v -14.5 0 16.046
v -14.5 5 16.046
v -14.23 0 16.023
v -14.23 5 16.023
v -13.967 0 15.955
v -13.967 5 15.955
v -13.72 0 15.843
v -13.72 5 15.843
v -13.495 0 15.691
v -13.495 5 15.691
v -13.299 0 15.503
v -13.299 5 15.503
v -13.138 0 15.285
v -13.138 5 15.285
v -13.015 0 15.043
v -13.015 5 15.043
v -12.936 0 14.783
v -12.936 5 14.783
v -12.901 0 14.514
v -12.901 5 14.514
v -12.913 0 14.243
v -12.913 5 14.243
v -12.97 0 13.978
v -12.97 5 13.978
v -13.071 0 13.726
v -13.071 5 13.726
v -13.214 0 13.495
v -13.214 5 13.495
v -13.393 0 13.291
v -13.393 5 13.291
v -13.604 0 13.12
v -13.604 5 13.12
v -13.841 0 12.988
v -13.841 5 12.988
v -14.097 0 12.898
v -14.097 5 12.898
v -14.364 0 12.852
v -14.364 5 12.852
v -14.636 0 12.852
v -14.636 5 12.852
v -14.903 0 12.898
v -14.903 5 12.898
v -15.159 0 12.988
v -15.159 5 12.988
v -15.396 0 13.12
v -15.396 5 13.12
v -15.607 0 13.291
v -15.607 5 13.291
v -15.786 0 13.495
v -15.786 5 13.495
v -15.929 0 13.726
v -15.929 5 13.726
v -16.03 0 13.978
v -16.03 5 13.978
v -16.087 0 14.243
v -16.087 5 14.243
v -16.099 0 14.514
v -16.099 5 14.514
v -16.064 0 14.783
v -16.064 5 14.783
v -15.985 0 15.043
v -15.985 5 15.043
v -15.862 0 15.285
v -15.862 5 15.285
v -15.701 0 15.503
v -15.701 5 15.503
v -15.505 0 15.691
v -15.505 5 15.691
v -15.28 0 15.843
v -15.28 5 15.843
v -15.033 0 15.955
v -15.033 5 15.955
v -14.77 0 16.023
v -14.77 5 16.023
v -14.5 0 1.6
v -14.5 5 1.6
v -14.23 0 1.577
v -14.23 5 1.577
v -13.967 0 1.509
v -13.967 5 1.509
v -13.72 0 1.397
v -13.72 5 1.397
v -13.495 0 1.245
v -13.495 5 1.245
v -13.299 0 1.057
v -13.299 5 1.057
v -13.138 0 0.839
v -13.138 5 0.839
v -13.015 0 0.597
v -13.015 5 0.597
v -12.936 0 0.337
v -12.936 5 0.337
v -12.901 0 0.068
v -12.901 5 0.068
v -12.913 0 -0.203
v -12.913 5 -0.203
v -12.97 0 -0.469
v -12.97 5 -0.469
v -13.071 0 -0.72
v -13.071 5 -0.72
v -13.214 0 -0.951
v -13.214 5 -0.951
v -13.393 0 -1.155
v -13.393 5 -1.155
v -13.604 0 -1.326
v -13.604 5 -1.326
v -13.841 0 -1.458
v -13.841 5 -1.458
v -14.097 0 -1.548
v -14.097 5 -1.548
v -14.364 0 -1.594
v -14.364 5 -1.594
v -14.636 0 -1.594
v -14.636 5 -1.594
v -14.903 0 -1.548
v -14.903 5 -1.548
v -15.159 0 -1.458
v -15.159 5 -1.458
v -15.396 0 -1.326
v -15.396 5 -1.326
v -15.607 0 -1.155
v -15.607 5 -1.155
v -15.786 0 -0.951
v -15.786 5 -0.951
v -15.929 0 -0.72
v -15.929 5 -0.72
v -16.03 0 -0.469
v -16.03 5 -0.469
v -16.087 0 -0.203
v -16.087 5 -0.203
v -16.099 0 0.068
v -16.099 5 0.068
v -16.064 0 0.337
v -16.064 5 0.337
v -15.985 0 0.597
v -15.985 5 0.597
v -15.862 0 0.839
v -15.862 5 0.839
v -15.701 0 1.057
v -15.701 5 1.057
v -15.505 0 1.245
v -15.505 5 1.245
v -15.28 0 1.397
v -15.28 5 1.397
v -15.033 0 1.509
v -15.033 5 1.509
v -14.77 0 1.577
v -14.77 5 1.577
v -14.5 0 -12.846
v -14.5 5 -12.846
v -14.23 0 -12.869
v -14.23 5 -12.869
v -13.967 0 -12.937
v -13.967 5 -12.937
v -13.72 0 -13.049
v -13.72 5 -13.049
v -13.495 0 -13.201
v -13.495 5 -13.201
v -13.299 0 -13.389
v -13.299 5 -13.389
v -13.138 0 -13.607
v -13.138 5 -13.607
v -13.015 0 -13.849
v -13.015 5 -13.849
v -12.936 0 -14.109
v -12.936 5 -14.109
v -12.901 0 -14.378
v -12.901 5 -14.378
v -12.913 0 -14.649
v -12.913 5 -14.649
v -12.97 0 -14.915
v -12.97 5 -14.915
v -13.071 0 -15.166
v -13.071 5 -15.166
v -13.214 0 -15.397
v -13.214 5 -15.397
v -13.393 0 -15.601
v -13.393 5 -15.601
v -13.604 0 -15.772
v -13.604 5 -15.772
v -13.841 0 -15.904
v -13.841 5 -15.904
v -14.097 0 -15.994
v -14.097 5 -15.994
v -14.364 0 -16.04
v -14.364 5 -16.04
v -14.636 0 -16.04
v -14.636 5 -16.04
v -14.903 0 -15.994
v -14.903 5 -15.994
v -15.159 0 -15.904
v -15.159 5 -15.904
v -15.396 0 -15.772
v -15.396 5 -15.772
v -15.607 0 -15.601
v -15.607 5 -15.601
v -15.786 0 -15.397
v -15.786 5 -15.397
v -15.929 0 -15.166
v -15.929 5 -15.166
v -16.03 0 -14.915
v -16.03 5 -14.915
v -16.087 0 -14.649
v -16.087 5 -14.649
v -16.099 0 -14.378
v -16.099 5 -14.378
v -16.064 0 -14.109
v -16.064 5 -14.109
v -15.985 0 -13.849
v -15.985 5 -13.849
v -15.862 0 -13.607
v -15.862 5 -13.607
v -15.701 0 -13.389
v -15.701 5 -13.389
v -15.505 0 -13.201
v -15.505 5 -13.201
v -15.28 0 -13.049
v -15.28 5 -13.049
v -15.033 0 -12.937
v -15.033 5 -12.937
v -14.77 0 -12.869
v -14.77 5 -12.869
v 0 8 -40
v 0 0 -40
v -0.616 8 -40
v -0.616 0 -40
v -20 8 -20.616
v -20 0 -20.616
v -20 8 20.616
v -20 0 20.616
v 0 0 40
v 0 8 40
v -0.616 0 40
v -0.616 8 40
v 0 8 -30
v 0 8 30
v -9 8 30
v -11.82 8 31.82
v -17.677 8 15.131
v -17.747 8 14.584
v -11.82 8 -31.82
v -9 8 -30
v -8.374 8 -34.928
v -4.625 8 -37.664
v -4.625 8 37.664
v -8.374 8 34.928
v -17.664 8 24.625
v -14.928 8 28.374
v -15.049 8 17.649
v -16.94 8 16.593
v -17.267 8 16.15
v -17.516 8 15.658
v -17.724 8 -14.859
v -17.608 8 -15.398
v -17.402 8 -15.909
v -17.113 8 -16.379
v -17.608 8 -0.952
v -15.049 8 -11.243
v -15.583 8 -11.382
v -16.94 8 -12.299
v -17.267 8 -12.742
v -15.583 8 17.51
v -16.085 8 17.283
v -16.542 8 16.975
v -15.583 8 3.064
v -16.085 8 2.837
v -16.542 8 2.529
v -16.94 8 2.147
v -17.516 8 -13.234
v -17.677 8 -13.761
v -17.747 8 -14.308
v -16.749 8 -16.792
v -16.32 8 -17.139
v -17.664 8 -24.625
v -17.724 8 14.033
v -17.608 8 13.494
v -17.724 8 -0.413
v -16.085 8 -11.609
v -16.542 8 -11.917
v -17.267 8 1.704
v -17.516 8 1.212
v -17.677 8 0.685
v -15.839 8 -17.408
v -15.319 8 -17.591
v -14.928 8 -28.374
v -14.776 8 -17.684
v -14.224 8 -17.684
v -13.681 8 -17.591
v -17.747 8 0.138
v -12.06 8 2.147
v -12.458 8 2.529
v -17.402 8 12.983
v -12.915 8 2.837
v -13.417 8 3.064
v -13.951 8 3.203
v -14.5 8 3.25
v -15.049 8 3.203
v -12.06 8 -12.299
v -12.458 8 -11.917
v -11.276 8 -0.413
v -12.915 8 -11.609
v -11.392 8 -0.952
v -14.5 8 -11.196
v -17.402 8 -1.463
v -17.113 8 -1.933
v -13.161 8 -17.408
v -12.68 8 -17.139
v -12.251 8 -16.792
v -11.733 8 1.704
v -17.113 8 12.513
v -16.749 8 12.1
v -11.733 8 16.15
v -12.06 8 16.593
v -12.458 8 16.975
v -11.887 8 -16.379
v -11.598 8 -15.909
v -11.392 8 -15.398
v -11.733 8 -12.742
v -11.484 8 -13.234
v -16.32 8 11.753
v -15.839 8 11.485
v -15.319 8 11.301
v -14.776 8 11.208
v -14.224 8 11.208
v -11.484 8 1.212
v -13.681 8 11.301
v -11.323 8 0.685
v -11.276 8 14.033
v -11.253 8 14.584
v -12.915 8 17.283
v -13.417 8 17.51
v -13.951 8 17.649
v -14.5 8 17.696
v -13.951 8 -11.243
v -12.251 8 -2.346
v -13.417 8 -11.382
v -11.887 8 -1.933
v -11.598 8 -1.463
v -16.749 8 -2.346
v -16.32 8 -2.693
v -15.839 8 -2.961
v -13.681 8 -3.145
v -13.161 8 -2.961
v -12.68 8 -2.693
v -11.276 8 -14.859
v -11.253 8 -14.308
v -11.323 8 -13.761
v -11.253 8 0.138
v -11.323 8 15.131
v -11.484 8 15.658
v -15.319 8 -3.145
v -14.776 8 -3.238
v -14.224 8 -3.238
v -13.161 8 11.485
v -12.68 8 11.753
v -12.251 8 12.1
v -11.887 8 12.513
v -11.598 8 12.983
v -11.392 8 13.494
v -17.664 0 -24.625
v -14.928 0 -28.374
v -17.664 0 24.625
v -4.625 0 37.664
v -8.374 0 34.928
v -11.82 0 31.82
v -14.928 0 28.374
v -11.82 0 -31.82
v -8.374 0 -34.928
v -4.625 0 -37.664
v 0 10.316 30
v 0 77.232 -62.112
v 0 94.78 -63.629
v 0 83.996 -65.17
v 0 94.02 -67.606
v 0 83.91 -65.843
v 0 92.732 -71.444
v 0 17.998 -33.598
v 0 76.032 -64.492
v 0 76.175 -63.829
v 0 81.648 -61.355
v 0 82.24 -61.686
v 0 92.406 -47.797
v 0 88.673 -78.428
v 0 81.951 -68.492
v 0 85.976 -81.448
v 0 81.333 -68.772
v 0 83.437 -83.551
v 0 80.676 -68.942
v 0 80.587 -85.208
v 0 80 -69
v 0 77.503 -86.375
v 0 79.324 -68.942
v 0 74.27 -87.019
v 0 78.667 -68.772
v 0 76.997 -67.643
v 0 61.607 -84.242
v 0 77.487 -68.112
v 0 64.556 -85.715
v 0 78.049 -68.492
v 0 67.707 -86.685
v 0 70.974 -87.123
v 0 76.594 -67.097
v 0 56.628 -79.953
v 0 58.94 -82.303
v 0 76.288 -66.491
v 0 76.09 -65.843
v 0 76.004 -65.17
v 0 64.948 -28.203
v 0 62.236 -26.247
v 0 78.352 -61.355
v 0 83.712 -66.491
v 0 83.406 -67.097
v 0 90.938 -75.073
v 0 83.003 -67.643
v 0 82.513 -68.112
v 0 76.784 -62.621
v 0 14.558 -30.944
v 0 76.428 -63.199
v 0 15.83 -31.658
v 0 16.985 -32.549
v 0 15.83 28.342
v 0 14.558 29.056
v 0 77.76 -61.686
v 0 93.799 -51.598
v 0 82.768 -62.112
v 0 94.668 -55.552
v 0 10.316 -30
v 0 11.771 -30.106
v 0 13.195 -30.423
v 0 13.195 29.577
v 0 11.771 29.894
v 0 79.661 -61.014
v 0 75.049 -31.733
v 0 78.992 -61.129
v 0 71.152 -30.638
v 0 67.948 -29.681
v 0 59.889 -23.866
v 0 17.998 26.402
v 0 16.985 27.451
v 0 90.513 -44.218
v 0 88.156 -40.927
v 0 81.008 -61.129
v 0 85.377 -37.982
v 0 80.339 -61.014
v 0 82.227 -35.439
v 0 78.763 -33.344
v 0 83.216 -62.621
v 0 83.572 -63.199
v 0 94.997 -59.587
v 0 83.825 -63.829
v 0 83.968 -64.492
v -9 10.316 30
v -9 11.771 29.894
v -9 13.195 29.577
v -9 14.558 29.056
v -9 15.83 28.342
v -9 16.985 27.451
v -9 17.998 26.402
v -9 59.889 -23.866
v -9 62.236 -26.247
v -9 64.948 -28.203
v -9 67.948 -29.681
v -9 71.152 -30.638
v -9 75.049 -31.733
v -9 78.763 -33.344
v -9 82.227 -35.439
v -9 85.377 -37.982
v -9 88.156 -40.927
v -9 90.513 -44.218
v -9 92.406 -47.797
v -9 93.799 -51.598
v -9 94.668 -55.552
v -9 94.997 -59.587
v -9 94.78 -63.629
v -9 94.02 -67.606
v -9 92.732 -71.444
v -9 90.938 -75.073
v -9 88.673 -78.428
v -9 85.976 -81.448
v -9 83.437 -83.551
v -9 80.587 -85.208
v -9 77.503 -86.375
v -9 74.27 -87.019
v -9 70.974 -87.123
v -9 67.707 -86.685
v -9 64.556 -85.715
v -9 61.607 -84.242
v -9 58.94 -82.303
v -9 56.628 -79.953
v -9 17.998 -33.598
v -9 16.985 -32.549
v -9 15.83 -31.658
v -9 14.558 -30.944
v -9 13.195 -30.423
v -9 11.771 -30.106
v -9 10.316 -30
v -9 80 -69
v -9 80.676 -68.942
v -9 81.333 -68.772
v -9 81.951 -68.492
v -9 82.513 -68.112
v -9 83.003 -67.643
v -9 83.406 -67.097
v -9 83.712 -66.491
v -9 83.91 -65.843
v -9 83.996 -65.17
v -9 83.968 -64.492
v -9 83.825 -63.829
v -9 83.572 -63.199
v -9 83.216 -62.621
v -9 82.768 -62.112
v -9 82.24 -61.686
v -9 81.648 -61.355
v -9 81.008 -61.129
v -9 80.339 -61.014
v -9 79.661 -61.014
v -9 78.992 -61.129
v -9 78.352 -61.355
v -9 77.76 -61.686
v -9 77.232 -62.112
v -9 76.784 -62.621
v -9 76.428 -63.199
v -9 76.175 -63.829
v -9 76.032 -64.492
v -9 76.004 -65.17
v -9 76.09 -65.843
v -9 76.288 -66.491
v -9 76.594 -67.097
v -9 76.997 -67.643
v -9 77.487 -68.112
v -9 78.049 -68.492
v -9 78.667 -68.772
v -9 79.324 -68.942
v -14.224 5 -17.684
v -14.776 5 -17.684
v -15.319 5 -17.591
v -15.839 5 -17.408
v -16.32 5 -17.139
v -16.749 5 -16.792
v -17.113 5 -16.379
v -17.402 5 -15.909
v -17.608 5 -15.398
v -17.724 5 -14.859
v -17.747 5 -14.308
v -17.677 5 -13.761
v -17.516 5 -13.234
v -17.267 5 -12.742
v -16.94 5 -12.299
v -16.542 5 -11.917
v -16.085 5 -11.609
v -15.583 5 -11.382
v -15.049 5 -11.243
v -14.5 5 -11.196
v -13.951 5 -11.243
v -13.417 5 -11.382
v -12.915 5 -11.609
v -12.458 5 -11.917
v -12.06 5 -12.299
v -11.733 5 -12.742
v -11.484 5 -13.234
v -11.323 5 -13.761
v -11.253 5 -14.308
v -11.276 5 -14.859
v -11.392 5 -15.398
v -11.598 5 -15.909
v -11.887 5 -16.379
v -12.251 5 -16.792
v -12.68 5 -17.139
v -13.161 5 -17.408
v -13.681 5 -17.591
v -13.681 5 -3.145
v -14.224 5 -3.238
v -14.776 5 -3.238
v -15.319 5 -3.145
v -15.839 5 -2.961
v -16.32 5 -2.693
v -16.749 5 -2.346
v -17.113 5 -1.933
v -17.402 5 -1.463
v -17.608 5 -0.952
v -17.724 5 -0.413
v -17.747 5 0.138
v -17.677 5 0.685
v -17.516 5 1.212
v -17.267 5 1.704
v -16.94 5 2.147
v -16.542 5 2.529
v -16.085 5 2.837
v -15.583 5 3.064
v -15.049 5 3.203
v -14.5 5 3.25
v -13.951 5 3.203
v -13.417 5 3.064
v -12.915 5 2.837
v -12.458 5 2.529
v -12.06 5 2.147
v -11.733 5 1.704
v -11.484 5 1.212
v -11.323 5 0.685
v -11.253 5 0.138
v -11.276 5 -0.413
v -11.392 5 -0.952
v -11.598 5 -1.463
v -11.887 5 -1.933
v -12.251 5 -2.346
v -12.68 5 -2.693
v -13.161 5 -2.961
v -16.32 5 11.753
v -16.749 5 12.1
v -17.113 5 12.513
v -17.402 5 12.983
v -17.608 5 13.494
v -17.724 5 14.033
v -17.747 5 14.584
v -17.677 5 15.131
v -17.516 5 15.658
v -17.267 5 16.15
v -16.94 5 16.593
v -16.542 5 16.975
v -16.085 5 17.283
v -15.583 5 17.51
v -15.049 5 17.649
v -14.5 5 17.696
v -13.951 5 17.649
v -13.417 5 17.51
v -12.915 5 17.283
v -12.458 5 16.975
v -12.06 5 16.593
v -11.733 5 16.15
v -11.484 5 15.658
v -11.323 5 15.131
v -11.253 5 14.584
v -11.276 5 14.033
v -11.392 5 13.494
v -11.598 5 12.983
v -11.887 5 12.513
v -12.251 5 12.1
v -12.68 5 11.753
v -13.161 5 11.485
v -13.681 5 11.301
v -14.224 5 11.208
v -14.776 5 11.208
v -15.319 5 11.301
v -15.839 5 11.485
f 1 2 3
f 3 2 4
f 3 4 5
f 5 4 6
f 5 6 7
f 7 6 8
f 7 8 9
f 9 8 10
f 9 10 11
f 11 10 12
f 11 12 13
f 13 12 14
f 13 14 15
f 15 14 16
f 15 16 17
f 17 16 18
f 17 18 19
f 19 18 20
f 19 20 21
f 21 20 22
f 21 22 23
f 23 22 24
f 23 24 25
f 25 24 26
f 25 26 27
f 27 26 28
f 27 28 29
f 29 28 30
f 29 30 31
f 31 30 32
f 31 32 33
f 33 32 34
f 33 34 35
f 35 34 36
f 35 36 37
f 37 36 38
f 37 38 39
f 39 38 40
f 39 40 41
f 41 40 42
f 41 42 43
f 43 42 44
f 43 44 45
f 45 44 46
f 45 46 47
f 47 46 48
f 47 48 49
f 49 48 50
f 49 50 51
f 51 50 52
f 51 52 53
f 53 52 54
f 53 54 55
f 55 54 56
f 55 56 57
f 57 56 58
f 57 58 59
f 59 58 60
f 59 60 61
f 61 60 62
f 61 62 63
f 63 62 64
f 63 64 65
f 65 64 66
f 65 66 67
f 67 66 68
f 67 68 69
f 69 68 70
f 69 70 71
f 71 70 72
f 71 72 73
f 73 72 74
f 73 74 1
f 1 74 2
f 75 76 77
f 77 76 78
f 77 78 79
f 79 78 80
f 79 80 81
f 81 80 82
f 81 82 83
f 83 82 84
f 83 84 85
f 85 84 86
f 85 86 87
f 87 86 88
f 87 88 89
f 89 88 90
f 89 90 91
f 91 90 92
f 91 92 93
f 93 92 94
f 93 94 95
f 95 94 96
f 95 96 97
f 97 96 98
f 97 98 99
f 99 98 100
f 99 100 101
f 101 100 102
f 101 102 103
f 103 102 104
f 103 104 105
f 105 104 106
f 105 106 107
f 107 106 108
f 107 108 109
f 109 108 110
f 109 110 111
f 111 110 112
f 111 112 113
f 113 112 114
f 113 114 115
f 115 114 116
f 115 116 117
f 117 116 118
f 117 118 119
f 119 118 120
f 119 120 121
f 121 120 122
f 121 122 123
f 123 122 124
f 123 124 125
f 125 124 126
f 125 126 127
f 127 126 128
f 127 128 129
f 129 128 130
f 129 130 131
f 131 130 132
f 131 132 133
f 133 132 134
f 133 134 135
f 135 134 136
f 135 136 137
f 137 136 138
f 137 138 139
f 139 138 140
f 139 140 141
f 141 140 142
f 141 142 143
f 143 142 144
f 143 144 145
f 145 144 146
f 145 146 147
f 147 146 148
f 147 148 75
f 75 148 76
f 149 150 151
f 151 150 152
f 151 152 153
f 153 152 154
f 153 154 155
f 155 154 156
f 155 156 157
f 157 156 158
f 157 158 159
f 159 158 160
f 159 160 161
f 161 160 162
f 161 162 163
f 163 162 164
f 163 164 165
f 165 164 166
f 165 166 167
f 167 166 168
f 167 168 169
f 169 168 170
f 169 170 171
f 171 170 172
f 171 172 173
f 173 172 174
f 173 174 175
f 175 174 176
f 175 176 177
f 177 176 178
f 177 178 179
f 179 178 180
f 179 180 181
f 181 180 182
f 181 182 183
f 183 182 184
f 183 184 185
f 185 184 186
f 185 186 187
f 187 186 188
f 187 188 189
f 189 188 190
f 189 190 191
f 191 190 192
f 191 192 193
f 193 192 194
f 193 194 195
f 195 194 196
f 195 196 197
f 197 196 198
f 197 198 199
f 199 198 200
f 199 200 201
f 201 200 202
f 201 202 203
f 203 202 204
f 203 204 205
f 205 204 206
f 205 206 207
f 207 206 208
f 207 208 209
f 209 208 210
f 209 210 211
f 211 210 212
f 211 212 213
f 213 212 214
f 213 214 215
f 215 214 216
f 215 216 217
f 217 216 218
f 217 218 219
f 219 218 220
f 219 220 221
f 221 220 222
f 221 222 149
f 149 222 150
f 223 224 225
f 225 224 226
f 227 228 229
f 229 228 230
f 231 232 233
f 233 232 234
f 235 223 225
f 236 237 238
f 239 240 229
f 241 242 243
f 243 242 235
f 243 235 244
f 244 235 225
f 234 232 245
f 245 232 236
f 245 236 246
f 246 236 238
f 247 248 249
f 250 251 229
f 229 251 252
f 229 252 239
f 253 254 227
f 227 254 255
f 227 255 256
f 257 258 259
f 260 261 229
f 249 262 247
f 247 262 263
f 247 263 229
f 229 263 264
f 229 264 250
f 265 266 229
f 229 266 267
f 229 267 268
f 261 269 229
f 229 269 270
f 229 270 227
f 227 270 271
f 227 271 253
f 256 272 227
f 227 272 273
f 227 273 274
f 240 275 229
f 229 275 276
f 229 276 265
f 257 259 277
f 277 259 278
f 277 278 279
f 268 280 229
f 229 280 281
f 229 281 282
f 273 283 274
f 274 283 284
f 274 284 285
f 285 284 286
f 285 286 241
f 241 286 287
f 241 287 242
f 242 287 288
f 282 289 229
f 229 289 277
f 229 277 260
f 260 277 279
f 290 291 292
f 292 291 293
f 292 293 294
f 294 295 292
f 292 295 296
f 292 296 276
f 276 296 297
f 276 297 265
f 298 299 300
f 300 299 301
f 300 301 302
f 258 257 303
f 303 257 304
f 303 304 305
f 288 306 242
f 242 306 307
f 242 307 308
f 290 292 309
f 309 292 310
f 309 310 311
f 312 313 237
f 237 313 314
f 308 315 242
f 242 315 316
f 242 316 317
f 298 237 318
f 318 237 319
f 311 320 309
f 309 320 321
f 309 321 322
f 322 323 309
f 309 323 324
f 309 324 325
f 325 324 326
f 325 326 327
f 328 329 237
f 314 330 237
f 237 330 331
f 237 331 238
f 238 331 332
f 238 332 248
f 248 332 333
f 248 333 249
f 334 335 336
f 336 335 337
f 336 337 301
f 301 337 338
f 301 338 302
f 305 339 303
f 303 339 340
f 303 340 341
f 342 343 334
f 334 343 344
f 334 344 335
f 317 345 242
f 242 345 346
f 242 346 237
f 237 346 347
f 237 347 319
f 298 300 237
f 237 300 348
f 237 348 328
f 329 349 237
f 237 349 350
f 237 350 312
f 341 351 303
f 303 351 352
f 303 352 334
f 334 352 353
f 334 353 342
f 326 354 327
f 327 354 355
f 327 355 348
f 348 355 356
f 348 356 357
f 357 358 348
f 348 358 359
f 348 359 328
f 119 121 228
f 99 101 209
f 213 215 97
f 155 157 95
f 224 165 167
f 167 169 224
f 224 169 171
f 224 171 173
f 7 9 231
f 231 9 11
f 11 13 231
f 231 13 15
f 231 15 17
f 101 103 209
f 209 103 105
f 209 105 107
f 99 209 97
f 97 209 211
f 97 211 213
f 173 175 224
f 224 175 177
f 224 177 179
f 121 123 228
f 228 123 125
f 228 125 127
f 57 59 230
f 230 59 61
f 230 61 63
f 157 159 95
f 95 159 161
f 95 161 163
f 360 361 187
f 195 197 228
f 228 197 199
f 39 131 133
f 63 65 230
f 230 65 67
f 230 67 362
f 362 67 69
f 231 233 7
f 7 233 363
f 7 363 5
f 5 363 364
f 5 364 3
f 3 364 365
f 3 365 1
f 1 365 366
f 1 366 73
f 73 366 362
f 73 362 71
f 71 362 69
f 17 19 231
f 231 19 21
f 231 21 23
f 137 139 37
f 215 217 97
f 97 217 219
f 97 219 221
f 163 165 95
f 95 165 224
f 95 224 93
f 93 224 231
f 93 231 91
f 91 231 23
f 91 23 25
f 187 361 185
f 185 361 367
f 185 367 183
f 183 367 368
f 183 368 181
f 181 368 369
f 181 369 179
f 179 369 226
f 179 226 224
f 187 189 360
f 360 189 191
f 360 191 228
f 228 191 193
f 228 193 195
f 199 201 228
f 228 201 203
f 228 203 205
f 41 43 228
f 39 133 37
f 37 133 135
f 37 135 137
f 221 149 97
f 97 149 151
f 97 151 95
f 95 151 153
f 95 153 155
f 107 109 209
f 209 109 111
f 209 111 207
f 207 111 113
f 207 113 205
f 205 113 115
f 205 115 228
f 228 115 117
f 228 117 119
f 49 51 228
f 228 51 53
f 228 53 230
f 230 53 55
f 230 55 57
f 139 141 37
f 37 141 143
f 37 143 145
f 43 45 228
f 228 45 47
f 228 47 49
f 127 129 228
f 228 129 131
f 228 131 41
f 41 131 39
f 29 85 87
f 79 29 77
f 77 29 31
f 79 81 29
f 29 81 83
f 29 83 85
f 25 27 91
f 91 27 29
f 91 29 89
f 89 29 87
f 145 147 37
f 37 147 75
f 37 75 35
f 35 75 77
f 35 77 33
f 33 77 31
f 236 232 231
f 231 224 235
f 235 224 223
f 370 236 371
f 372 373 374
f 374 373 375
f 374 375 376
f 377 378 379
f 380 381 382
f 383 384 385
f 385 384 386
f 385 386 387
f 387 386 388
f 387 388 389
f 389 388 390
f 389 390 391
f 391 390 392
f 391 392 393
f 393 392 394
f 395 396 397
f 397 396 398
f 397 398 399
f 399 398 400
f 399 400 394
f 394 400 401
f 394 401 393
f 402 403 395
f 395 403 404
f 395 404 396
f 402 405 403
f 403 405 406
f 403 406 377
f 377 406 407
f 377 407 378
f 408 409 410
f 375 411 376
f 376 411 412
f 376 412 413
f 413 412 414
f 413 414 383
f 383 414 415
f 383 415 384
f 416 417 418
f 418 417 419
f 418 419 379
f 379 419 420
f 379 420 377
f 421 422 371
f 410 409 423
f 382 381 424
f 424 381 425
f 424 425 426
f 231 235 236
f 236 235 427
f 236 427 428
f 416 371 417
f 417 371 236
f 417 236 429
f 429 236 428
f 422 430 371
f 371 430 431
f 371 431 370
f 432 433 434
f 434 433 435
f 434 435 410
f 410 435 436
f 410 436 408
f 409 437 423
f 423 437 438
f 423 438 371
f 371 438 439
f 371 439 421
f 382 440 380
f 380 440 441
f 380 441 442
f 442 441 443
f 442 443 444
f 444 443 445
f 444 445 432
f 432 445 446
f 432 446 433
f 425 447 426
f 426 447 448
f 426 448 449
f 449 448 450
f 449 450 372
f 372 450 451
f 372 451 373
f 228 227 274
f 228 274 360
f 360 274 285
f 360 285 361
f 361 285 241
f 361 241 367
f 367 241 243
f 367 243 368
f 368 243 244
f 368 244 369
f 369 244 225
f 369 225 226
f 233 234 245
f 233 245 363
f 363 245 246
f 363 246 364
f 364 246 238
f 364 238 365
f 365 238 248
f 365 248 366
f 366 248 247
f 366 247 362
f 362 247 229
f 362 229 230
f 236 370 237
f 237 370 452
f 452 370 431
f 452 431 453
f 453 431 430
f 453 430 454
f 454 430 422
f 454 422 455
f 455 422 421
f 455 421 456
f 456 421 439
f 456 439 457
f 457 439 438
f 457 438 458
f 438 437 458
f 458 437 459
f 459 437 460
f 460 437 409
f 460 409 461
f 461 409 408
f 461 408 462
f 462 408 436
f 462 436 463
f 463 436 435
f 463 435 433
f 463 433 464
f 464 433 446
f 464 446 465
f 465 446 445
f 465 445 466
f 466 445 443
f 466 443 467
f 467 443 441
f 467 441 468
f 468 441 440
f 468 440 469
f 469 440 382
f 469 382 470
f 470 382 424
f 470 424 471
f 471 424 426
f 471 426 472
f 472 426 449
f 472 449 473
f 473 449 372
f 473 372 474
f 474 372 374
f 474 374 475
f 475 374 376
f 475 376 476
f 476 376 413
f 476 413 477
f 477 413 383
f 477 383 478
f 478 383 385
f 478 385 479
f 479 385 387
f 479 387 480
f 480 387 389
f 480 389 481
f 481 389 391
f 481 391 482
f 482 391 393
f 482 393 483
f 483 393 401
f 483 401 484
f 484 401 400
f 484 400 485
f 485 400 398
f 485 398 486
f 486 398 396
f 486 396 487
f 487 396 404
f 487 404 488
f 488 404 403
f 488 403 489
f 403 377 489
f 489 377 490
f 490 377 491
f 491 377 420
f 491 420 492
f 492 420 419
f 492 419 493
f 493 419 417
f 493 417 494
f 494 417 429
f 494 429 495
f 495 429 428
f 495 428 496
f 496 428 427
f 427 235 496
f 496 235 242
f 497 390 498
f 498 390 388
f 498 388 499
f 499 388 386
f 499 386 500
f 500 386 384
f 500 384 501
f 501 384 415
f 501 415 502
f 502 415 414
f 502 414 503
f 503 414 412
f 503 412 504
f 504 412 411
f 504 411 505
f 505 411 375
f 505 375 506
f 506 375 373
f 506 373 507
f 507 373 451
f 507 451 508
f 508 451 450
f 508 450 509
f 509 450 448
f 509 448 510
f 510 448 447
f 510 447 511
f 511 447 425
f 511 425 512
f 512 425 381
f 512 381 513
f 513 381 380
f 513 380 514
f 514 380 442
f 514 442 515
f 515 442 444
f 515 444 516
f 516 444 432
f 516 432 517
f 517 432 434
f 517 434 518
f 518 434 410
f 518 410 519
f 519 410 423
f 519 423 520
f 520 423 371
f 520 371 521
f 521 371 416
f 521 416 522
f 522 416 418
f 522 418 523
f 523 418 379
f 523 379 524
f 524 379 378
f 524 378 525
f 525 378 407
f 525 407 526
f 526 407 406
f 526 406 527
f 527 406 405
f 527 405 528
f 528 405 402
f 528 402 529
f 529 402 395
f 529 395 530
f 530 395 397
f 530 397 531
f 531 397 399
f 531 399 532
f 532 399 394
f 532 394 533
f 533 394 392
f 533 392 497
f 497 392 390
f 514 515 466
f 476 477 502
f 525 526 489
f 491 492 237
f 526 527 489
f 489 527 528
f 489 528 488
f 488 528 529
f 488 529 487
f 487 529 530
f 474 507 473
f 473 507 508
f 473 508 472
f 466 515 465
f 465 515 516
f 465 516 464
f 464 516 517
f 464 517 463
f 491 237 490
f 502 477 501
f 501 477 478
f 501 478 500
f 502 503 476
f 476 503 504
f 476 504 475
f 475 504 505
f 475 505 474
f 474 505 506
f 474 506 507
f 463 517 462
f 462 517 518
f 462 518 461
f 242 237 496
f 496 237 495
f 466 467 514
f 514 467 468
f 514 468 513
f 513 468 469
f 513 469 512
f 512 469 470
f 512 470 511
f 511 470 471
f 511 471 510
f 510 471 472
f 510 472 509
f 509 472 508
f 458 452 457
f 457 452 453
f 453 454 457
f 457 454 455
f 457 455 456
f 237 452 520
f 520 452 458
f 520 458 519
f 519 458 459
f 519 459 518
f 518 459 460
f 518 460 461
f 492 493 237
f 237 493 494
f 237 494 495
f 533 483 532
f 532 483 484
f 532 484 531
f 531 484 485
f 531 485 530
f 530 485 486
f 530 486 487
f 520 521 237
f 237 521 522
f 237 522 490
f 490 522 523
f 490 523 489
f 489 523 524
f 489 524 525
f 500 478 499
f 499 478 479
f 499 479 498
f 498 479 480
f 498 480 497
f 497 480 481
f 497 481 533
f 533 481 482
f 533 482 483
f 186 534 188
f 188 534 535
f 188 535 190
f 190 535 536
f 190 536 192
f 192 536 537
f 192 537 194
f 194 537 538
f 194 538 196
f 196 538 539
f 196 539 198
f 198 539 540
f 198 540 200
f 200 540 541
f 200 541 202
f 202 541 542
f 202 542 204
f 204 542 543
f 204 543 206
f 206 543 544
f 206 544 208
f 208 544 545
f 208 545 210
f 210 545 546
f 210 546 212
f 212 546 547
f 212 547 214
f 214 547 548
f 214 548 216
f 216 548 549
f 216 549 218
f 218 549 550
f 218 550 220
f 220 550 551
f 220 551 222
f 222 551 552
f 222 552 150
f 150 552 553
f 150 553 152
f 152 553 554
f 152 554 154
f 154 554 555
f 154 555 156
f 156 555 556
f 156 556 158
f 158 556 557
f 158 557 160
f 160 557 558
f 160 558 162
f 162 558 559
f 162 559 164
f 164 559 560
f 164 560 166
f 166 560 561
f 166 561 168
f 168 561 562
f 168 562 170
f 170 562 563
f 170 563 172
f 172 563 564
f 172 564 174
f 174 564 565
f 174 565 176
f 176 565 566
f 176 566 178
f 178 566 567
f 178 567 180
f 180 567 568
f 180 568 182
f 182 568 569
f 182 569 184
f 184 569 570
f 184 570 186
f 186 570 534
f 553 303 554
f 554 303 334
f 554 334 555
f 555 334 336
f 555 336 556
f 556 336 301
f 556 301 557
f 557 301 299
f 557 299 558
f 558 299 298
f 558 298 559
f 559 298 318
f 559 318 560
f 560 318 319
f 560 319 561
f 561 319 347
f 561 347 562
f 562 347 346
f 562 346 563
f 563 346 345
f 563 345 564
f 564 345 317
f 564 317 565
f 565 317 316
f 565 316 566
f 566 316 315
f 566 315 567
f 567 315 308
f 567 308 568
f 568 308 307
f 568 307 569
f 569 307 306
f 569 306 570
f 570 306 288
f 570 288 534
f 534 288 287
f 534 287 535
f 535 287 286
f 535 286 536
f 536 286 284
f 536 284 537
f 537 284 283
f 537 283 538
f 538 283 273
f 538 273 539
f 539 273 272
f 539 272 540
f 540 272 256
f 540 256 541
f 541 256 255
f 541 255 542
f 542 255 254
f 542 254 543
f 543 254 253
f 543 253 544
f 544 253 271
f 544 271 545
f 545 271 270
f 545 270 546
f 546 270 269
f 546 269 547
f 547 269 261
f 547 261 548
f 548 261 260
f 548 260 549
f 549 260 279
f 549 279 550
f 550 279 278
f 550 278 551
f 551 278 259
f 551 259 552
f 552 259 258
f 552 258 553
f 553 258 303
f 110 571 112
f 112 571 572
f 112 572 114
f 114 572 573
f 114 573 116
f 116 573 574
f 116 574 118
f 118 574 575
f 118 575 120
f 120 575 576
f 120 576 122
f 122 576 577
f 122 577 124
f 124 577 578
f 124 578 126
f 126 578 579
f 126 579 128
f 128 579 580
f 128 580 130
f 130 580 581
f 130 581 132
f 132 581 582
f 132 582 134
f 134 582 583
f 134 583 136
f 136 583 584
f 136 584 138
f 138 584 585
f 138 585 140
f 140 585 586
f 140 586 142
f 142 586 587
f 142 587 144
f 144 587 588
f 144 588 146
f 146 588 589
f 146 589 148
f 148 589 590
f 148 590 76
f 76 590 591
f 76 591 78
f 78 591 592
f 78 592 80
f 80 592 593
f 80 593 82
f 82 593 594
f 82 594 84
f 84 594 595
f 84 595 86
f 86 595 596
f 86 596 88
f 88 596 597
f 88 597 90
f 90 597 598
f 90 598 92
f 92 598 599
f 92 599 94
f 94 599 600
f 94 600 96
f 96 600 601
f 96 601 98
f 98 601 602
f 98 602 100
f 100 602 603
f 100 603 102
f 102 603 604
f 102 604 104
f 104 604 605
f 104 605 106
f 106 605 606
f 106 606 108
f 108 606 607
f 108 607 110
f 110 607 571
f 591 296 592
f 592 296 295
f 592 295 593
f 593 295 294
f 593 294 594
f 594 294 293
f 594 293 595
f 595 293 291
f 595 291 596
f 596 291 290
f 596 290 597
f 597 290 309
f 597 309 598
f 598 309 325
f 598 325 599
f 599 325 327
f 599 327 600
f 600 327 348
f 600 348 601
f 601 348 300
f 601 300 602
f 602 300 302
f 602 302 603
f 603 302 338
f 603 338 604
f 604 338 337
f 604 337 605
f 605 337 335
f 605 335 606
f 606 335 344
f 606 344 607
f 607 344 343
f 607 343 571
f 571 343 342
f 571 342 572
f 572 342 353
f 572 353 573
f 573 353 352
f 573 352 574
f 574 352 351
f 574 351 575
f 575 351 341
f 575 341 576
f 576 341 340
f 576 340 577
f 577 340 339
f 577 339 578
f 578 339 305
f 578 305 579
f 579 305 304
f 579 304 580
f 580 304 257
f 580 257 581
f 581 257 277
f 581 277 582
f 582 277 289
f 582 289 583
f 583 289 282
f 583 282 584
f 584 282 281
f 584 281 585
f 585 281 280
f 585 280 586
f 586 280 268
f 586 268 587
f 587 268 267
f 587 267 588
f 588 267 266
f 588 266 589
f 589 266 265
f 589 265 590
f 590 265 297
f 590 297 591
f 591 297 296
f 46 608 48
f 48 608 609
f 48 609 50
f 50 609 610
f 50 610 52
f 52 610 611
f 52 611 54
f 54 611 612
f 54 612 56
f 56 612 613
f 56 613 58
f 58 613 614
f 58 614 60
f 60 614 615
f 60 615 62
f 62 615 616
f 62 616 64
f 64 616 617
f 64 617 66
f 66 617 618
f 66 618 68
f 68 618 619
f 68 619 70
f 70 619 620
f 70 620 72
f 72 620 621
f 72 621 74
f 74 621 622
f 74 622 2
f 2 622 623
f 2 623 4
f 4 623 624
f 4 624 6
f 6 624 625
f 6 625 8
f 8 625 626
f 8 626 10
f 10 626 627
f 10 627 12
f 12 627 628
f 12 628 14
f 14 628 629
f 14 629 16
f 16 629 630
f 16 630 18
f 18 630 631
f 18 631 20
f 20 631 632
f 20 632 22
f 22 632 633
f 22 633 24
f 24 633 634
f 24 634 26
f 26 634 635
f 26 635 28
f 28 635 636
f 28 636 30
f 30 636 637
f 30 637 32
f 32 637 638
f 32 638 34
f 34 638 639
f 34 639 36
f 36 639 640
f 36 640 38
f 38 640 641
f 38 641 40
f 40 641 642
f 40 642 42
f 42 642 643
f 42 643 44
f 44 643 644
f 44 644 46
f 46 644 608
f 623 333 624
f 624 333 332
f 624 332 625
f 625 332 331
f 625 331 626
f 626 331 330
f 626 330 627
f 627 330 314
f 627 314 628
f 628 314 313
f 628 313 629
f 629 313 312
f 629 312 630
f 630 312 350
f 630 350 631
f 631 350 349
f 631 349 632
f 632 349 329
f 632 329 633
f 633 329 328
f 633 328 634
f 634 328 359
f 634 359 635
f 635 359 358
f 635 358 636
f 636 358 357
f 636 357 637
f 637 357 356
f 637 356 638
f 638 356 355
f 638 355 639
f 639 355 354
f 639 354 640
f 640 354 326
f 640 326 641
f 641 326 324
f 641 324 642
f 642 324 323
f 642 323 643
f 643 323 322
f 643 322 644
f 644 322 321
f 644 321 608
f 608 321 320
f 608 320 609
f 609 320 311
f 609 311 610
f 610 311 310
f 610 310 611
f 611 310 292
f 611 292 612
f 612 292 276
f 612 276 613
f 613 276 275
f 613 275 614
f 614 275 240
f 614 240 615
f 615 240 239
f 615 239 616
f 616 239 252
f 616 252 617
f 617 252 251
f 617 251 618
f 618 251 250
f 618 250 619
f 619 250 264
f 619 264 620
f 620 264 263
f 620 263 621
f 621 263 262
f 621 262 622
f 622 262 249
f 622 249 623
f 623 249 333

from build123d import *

# Parameters (mm, degrees)
CROQUIS1_W              = 20
CROQUIS1_H              = 80
SALIENTE_EXTRUIR2_DEPTH = 8
CORTAR_EXTRUIR1_DEPTH   = 8
CROQUIS4_R              = 4
SALIENTE_EXTRUIR3_DEPTH = 13
CROQUIS5_W              = 11
CROQUIS5_H              = 133.76595163
CORTAR_EXTRUIR2_DEPTH   = 87
CROQUIS6_R              = 1.6
CORTAR_EXTRUIR3_DEPTH   = 87
CROQUIS7_R              = 3.25
CORTAR_EXTRUIR4_DEPTH   = 3


with BuildPart() as part:
    # Croquis1 → Saliente-Extruir2 (new body)
    with BuildSketch(Plane(origin=(0, 0, 0), x_dir=(1, 0, 0), z_dir=(0, 1, 0))):
        with Locations((-10, 0)):
            Rectangle(CROQUIS1_W, CROQUIS1_H)
    extrude(amount=SALIENTE_EXTRUIR2_DEPTH)

    # Croquis2 → Cortar-Extruir1 (cut)
    with BuildSketch(Plane(origin=(0, 8, 0), x_dir=(1, 0, 0), z_dir=(0, 1, 0))):
        with BuildLine():
            ThreePointArc((-0.615528128, -40), (-11.819805153, -31.819805153), (-20, -20.615528128))
            Line((-20, -20.615528128), (-20, -40))
            Line((-20, -40), (-0.615528128, -40))
        make_face()
        with BuildLine():
            Line((-0.615528128, 40), (-20, 40))
            Line((-20, 40), (-20, 20.615528128))
            ThreePointArc((-20, 20.615528128), (-11.819805153, 31.819805153), (-0.615528128, 40))
        make_face()
    extrude(amount=-CORTAR_EXTRUIR1_DEPTH, mode=Mode.SUBTRACT)

    # Croquis4 → Saliente-Extruir3 (add)
    with BuildSketch(Plane(origin=(0, 0, 0), x_dir=(0, 0, -1), z_dir=(1, 0, 0))):
        with BuildLine():
            Line((0, 0), (30, 0))
            Line((30, 0), (30, 10.31625054))
            ThreePointArc((30, 10.31625054), (30.944105788, 14.557804503), (33.598156003, 17.998463336))
            Line((33.598156003, 17.998463336), (79.953012113, 56.627510094))
            ThreePointArc((79.953012113, 56.627510094), (87.123427128, 70.974483465), (81.447972358, 85.975807058))
            ThreePointArc((81.447972358, 85.975807058), (51.597737237, 93.799339931), (30.637508796, 71.151756681))
            ThreePointArc((30.637508796, 71.151756681), (28.203401142, 64.948074064), (23.866202653, 59.88850221))
            Line((23.866202653, 59.88850221), (-26.401843997, 17.998463336))
            ThreePointArc((-26.401843997, 17.998463336), (-29.055894212, 14.557804503), (-30, 10.31625054))
            Line((-30, 10.31625054), (-30, 0))
            Line((-30, 0), (0, 0))
        make_face()
        with Locations((65, 80)):
            Circle(CROQUIS4_R, mode=Mode.SUBTRACT)
    extrude(amount=-SALIENTE_EXTRUIR3_DEPTH)

    # Croquis5 → Cortar-Extruir2 (cut)
    with BuildSketch(Plane(origin=(0, 95, 0), x_dir=(1, 0, 0), z_dir=(0, 1, 0))):
        with Locations((-14.5, 20.266348304)):
            Rectangle(CROQUIS5_W, CROQUIS5_H)
    extrude(amount=-CORTAR_EXTRUIR2_DEPTH, mode=Mode.SUBTRACT)

    # Croquis6 → Cortar-Extruir3 (cut)
    with BuildSketch(Plane(origin=(0, 8, 0), x_dir=(1, 0, 0), z_dir=(0, 1, 0))):
        with Locations(Location((-14.5, 14.446020213, 0), (0, 0, 270))):
            Circle(CROQUIS6_R)
        with Locations(Location((-14.5, 0, 0), (0, 0, 270))):
            Circle(CROQUIS6_R)
        with Locations(Location((-14.5, -14.446020213, 0), (0, 0, 270))):
            Circle(CROQUIS6_R)
    extrude(amount=-CORTAR_EXTRUIR3_DEPTH, mode=Mode.SUBTRACT)

    # Croquis7 → Cortar-Extruir4 (cut)
    with BuildSketch(Plane(origin=(0, 8, 0), x_dir=(1, 0, 0), z_dir=(0, 1, 0))):
        with Locations(Location((-14.5, 14.446020213, 0), (0, 0, 270))):
            Circle(CROQUIS7_R)
        with Locations(Location((-14.5, 0, 0), (0, 0, 270))):
            Circle(CROQUIS7_R)
        with Locations(Location((-14.5, -14.446020213, 0), (0, 0, 270))):
            Circle(CROQUIS7_R)
    extrude(amount=-CORTAR_EXTRUIR4_DEPTH, mode=Mode.SUBTRACT)


solid = part.part
